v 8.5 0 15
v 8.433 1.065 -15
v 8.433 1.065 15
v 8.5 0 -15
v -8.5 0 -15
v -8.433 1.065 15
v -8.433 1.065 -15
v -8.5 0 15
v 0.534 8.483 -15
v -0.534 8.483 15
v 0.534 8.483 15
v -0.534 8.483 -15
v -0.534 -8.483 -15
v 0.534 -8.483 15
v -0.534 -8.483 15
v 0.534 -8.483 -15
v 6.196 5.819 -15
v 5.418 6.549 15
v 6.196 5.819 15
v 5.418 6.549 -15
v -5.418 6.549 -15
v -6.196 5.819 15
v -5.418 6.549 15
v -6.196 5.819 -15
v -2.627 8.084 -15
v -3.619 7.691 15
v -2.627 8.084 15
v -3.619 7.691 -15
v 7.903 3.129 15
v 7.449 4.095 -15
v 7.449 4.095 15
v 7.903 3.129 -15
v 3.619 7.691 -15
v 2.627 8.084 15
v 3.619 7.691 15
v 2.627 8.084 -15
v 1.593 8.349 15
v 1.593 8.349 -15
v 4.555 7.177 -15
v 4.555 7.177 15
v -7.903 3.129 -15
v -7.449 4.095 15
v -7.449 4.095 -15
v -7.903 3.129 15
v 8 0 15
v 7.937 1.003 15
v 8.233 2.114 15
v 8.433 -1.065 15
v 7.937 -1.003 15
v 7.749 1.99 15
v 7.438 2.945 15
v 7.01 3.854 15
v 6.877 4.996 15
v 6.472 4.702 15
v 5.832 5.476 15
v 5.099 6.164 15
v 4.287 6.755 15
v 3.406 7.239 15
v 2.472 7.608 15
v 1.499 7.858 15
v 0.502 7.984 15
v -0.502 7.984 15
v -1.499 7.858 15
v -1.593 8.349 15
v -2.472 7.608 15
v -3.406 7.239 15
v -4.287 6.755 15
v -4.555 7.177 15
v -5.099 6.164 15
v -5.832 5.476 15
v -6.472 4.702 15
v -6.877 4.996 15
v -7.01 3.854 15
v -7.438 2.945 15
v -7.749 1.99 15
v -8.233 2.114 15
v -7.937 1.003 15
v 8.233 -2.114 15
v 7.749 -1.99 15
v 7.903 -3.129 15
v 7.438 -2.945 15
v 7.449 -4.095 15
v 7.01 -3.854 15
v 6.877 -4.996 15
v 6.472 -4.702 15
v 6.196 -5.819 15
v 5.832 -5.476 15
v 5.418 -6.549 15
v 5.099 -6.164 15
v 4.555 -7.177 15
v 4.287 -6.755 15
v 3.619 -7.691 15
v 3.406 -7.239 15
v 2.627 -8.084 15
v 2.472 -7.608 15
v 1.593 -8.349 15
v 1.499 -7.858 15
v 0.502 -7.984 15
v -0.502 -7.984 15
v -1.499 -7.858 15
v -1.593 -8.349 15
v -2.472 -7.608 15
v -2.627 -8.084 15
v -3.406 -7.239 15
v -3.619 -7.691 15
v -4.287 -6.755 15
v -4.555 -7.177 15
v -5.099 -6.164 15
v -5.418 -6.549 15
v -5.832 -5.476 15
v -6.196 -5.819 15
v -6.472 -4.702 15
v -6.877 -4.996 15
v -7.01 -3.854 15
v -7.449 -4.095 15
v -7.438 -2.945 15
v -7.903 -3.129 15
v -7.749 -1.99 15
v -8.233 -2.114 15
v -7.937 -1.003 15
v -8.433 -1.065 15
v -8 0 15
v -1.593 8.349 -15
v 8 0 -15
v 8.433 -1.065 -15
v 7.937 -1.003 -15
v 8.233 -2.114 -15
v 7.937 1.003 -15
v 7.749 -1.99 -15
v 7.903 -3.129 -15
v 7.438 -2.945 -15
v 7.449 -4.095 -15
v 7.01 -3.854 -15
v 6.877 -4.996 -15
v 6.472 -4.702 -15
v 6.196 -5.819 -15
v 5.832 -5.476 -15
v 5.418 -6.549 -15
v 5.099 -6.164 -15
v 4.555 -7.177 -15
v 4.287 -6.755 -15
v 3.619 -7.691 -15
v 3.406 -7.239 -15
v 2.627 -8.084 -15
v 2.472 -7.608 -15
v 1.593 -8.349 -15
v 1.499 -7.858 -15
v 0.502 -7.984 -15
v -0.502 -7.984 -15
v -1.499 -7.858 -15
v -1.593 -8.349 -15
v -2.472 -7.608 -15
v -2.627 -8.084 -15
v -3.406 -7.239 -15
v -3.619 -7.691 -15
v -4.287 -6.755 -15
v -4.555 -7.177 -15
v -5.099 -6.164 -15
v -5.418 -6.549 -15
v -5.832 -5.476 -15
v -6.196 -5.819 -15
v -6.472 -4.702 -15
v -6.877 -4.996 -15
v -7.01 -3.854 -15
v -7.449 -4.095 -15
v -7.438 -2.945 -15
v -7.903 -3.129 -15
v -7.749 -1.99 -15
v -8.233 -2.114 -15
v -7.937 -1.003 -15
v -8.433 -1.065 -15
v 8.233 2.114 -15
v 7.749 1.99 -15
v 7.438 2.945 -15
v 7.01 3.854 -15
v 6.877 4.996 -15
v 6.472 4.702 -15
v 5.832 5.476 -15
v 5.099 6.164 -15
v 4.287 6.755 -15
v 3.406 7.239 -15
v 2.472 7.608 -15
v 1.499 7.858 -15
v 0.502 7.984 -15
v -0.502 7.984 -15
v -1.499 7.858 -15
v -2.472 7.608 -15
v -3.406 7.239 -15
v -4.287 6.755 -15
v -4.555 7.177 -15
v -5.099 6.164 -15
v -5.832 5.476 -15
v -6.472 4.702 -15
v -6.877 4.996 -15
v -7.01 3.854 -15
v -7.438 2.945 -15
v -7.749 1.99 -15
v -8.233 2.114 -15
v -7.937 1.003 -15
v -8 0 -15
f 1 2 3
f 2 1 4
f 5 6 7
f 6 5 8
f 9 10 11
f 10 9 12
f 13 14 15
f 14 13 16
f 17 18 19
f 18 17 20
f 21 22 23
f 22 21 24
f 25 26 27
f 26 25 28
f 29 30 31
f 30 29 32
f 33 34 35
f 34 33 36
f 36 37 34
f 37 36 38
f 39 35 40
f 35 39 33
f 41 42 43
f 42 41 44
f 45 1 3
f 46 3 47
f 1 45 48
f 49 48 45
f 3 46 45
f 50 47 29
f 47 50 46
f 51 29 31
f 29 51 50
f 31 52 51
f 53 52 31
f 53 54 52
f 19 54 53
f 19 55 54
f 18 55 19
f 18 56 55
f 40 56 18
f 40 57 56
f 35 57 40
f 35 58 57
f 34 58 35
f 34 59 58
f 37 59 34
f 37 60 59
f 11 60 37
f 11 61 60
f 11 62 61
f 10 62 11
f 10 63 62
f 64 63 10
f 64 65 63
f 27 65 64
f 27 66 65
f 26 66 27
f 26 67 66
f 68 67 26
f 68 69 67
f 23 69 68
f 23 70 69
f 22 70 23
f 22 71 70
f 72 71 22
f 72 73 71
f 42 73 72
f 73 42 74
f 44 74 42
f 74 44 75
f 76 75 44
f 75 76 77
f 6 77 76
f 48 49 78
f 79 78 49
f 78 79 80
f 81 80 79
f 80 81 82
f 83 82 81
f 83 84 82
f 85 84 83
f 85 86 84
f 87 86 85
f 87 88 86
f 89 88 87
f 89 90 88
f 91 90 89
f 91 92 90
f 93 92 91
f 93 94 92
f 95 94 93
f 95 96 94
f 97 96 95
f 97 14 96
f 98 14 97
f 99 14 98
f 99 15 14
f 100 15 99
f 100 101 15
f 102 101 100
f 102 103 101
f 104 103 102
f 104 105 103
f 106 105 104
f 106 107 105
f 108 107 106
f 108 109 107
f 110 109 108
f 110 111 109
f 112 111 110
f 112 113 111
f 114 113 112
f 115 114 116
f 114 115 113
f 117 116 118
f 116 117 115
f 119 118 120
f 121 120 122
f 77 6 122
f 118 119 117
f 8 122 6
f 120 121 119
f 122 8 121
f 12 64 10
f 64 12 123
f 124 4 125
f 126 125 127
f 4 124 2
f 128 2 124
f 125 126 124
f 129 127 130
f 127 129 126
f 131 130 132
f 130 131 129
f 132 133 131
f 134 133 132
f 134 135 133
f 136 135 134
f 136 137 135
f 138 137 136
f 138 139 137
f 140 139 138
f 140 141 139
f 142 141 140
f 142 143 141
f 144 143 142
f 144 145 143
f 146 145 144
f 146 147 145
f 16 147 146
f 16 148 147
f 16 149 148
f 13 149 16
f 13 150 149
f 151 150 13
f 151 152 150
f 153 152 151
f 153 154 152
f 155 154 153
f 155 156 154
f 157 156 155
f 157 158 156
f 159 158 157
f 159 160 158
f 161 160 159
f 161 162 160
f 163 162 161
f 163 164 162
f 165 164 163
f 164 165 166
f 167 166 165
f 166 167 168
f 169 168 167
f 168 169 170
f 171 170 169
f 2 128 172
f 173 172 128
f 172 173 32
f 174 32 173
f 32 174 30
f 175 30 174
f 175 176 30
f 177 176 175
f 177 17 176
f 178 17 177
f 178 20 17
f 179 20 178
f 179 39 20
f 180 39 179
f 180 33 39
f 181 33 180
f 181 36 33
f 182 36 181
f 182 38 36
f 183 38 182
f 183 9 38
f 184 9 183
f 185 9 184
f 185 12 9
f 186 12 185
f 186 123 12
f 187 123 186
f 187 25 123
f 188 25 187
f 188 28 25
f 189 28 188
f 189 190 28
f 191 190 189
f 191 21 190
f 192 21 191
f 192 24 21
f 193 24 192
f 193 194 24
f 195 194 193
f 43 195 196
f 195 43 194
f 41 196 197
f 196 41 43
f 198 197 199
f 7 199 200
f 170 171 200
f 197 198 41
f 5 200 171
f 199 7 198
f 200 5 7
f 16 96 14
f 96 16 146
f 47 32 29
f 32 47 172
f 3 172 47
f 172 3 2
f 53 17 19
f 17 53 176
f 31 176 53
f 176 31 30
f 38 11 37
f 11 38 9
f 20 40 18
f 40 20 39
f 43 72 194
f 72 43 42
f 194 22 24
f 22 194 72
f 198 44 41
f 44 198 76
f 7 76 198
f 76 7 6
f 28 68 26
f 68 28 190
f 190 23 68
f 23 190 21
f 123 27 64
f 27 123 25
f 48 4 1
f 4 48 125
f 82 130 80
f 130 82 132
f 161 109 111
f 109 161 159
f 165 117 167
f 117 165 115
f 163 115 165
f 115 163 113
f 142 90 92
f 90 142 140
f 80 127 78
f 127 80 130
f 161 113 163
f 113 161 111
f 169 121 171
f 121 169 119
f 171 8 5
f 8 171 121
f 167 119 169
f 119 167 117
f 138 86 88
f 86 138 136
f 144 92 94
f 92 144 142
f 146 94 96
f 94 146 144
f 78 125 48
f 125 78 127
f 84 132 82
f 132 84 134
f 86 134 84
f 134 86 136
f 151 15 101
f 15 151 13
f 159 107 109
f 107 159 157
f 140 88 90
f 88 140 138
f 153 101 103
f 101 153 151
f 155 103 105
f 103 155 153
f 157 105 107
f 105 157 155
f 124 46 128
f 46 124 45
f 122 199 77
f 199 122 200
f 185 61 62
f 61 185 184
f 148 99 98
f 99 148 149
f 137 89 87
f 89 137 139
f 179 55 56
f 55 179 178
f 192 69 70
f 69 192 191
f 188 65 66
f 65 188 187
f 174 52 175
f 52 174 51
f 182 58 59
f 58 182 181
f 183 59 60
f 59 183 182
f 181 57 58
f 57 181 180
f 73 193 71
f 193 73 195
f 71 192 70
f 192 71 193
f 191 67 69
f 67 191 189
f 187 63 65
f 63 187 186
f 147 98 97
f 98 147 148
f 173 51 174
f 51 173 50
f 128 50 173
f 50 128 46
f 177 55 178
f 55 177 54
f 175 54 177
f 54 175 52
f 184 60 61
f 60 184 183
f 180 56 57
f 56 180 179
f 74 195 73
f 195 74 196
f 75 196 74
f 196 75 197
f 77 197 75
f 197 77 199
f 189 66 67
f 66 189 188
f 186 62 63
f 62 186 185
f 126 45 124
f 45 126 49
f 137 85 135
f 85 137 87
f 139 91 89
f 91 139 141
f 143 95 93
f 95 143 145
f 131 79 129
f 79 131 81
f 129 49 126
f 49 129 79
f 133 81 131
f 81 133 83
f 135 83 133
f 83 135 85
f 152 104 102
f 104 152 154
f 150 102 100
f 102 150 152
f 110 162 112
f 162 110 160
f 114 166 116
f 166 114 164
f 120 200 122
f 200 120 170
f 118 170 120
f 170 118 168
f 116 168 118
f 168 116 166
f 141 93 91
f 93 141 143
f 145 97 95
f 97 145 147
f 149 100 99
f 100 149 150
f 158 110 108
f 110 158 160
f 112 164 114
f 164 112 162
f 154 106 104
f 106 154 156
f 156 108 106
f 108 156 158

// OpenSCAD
$fn = 50;


difference() {
	union() {
		translate(v = [0, 0, -15.0000000000]) {
			cylinder(h = 30, r = 8.5000000000);
		}
	}
	union() {
		translate(v = [0, 0, -100.0000000000]) {
			cylinder(h = 200, r = 8);
		}
	}
}
